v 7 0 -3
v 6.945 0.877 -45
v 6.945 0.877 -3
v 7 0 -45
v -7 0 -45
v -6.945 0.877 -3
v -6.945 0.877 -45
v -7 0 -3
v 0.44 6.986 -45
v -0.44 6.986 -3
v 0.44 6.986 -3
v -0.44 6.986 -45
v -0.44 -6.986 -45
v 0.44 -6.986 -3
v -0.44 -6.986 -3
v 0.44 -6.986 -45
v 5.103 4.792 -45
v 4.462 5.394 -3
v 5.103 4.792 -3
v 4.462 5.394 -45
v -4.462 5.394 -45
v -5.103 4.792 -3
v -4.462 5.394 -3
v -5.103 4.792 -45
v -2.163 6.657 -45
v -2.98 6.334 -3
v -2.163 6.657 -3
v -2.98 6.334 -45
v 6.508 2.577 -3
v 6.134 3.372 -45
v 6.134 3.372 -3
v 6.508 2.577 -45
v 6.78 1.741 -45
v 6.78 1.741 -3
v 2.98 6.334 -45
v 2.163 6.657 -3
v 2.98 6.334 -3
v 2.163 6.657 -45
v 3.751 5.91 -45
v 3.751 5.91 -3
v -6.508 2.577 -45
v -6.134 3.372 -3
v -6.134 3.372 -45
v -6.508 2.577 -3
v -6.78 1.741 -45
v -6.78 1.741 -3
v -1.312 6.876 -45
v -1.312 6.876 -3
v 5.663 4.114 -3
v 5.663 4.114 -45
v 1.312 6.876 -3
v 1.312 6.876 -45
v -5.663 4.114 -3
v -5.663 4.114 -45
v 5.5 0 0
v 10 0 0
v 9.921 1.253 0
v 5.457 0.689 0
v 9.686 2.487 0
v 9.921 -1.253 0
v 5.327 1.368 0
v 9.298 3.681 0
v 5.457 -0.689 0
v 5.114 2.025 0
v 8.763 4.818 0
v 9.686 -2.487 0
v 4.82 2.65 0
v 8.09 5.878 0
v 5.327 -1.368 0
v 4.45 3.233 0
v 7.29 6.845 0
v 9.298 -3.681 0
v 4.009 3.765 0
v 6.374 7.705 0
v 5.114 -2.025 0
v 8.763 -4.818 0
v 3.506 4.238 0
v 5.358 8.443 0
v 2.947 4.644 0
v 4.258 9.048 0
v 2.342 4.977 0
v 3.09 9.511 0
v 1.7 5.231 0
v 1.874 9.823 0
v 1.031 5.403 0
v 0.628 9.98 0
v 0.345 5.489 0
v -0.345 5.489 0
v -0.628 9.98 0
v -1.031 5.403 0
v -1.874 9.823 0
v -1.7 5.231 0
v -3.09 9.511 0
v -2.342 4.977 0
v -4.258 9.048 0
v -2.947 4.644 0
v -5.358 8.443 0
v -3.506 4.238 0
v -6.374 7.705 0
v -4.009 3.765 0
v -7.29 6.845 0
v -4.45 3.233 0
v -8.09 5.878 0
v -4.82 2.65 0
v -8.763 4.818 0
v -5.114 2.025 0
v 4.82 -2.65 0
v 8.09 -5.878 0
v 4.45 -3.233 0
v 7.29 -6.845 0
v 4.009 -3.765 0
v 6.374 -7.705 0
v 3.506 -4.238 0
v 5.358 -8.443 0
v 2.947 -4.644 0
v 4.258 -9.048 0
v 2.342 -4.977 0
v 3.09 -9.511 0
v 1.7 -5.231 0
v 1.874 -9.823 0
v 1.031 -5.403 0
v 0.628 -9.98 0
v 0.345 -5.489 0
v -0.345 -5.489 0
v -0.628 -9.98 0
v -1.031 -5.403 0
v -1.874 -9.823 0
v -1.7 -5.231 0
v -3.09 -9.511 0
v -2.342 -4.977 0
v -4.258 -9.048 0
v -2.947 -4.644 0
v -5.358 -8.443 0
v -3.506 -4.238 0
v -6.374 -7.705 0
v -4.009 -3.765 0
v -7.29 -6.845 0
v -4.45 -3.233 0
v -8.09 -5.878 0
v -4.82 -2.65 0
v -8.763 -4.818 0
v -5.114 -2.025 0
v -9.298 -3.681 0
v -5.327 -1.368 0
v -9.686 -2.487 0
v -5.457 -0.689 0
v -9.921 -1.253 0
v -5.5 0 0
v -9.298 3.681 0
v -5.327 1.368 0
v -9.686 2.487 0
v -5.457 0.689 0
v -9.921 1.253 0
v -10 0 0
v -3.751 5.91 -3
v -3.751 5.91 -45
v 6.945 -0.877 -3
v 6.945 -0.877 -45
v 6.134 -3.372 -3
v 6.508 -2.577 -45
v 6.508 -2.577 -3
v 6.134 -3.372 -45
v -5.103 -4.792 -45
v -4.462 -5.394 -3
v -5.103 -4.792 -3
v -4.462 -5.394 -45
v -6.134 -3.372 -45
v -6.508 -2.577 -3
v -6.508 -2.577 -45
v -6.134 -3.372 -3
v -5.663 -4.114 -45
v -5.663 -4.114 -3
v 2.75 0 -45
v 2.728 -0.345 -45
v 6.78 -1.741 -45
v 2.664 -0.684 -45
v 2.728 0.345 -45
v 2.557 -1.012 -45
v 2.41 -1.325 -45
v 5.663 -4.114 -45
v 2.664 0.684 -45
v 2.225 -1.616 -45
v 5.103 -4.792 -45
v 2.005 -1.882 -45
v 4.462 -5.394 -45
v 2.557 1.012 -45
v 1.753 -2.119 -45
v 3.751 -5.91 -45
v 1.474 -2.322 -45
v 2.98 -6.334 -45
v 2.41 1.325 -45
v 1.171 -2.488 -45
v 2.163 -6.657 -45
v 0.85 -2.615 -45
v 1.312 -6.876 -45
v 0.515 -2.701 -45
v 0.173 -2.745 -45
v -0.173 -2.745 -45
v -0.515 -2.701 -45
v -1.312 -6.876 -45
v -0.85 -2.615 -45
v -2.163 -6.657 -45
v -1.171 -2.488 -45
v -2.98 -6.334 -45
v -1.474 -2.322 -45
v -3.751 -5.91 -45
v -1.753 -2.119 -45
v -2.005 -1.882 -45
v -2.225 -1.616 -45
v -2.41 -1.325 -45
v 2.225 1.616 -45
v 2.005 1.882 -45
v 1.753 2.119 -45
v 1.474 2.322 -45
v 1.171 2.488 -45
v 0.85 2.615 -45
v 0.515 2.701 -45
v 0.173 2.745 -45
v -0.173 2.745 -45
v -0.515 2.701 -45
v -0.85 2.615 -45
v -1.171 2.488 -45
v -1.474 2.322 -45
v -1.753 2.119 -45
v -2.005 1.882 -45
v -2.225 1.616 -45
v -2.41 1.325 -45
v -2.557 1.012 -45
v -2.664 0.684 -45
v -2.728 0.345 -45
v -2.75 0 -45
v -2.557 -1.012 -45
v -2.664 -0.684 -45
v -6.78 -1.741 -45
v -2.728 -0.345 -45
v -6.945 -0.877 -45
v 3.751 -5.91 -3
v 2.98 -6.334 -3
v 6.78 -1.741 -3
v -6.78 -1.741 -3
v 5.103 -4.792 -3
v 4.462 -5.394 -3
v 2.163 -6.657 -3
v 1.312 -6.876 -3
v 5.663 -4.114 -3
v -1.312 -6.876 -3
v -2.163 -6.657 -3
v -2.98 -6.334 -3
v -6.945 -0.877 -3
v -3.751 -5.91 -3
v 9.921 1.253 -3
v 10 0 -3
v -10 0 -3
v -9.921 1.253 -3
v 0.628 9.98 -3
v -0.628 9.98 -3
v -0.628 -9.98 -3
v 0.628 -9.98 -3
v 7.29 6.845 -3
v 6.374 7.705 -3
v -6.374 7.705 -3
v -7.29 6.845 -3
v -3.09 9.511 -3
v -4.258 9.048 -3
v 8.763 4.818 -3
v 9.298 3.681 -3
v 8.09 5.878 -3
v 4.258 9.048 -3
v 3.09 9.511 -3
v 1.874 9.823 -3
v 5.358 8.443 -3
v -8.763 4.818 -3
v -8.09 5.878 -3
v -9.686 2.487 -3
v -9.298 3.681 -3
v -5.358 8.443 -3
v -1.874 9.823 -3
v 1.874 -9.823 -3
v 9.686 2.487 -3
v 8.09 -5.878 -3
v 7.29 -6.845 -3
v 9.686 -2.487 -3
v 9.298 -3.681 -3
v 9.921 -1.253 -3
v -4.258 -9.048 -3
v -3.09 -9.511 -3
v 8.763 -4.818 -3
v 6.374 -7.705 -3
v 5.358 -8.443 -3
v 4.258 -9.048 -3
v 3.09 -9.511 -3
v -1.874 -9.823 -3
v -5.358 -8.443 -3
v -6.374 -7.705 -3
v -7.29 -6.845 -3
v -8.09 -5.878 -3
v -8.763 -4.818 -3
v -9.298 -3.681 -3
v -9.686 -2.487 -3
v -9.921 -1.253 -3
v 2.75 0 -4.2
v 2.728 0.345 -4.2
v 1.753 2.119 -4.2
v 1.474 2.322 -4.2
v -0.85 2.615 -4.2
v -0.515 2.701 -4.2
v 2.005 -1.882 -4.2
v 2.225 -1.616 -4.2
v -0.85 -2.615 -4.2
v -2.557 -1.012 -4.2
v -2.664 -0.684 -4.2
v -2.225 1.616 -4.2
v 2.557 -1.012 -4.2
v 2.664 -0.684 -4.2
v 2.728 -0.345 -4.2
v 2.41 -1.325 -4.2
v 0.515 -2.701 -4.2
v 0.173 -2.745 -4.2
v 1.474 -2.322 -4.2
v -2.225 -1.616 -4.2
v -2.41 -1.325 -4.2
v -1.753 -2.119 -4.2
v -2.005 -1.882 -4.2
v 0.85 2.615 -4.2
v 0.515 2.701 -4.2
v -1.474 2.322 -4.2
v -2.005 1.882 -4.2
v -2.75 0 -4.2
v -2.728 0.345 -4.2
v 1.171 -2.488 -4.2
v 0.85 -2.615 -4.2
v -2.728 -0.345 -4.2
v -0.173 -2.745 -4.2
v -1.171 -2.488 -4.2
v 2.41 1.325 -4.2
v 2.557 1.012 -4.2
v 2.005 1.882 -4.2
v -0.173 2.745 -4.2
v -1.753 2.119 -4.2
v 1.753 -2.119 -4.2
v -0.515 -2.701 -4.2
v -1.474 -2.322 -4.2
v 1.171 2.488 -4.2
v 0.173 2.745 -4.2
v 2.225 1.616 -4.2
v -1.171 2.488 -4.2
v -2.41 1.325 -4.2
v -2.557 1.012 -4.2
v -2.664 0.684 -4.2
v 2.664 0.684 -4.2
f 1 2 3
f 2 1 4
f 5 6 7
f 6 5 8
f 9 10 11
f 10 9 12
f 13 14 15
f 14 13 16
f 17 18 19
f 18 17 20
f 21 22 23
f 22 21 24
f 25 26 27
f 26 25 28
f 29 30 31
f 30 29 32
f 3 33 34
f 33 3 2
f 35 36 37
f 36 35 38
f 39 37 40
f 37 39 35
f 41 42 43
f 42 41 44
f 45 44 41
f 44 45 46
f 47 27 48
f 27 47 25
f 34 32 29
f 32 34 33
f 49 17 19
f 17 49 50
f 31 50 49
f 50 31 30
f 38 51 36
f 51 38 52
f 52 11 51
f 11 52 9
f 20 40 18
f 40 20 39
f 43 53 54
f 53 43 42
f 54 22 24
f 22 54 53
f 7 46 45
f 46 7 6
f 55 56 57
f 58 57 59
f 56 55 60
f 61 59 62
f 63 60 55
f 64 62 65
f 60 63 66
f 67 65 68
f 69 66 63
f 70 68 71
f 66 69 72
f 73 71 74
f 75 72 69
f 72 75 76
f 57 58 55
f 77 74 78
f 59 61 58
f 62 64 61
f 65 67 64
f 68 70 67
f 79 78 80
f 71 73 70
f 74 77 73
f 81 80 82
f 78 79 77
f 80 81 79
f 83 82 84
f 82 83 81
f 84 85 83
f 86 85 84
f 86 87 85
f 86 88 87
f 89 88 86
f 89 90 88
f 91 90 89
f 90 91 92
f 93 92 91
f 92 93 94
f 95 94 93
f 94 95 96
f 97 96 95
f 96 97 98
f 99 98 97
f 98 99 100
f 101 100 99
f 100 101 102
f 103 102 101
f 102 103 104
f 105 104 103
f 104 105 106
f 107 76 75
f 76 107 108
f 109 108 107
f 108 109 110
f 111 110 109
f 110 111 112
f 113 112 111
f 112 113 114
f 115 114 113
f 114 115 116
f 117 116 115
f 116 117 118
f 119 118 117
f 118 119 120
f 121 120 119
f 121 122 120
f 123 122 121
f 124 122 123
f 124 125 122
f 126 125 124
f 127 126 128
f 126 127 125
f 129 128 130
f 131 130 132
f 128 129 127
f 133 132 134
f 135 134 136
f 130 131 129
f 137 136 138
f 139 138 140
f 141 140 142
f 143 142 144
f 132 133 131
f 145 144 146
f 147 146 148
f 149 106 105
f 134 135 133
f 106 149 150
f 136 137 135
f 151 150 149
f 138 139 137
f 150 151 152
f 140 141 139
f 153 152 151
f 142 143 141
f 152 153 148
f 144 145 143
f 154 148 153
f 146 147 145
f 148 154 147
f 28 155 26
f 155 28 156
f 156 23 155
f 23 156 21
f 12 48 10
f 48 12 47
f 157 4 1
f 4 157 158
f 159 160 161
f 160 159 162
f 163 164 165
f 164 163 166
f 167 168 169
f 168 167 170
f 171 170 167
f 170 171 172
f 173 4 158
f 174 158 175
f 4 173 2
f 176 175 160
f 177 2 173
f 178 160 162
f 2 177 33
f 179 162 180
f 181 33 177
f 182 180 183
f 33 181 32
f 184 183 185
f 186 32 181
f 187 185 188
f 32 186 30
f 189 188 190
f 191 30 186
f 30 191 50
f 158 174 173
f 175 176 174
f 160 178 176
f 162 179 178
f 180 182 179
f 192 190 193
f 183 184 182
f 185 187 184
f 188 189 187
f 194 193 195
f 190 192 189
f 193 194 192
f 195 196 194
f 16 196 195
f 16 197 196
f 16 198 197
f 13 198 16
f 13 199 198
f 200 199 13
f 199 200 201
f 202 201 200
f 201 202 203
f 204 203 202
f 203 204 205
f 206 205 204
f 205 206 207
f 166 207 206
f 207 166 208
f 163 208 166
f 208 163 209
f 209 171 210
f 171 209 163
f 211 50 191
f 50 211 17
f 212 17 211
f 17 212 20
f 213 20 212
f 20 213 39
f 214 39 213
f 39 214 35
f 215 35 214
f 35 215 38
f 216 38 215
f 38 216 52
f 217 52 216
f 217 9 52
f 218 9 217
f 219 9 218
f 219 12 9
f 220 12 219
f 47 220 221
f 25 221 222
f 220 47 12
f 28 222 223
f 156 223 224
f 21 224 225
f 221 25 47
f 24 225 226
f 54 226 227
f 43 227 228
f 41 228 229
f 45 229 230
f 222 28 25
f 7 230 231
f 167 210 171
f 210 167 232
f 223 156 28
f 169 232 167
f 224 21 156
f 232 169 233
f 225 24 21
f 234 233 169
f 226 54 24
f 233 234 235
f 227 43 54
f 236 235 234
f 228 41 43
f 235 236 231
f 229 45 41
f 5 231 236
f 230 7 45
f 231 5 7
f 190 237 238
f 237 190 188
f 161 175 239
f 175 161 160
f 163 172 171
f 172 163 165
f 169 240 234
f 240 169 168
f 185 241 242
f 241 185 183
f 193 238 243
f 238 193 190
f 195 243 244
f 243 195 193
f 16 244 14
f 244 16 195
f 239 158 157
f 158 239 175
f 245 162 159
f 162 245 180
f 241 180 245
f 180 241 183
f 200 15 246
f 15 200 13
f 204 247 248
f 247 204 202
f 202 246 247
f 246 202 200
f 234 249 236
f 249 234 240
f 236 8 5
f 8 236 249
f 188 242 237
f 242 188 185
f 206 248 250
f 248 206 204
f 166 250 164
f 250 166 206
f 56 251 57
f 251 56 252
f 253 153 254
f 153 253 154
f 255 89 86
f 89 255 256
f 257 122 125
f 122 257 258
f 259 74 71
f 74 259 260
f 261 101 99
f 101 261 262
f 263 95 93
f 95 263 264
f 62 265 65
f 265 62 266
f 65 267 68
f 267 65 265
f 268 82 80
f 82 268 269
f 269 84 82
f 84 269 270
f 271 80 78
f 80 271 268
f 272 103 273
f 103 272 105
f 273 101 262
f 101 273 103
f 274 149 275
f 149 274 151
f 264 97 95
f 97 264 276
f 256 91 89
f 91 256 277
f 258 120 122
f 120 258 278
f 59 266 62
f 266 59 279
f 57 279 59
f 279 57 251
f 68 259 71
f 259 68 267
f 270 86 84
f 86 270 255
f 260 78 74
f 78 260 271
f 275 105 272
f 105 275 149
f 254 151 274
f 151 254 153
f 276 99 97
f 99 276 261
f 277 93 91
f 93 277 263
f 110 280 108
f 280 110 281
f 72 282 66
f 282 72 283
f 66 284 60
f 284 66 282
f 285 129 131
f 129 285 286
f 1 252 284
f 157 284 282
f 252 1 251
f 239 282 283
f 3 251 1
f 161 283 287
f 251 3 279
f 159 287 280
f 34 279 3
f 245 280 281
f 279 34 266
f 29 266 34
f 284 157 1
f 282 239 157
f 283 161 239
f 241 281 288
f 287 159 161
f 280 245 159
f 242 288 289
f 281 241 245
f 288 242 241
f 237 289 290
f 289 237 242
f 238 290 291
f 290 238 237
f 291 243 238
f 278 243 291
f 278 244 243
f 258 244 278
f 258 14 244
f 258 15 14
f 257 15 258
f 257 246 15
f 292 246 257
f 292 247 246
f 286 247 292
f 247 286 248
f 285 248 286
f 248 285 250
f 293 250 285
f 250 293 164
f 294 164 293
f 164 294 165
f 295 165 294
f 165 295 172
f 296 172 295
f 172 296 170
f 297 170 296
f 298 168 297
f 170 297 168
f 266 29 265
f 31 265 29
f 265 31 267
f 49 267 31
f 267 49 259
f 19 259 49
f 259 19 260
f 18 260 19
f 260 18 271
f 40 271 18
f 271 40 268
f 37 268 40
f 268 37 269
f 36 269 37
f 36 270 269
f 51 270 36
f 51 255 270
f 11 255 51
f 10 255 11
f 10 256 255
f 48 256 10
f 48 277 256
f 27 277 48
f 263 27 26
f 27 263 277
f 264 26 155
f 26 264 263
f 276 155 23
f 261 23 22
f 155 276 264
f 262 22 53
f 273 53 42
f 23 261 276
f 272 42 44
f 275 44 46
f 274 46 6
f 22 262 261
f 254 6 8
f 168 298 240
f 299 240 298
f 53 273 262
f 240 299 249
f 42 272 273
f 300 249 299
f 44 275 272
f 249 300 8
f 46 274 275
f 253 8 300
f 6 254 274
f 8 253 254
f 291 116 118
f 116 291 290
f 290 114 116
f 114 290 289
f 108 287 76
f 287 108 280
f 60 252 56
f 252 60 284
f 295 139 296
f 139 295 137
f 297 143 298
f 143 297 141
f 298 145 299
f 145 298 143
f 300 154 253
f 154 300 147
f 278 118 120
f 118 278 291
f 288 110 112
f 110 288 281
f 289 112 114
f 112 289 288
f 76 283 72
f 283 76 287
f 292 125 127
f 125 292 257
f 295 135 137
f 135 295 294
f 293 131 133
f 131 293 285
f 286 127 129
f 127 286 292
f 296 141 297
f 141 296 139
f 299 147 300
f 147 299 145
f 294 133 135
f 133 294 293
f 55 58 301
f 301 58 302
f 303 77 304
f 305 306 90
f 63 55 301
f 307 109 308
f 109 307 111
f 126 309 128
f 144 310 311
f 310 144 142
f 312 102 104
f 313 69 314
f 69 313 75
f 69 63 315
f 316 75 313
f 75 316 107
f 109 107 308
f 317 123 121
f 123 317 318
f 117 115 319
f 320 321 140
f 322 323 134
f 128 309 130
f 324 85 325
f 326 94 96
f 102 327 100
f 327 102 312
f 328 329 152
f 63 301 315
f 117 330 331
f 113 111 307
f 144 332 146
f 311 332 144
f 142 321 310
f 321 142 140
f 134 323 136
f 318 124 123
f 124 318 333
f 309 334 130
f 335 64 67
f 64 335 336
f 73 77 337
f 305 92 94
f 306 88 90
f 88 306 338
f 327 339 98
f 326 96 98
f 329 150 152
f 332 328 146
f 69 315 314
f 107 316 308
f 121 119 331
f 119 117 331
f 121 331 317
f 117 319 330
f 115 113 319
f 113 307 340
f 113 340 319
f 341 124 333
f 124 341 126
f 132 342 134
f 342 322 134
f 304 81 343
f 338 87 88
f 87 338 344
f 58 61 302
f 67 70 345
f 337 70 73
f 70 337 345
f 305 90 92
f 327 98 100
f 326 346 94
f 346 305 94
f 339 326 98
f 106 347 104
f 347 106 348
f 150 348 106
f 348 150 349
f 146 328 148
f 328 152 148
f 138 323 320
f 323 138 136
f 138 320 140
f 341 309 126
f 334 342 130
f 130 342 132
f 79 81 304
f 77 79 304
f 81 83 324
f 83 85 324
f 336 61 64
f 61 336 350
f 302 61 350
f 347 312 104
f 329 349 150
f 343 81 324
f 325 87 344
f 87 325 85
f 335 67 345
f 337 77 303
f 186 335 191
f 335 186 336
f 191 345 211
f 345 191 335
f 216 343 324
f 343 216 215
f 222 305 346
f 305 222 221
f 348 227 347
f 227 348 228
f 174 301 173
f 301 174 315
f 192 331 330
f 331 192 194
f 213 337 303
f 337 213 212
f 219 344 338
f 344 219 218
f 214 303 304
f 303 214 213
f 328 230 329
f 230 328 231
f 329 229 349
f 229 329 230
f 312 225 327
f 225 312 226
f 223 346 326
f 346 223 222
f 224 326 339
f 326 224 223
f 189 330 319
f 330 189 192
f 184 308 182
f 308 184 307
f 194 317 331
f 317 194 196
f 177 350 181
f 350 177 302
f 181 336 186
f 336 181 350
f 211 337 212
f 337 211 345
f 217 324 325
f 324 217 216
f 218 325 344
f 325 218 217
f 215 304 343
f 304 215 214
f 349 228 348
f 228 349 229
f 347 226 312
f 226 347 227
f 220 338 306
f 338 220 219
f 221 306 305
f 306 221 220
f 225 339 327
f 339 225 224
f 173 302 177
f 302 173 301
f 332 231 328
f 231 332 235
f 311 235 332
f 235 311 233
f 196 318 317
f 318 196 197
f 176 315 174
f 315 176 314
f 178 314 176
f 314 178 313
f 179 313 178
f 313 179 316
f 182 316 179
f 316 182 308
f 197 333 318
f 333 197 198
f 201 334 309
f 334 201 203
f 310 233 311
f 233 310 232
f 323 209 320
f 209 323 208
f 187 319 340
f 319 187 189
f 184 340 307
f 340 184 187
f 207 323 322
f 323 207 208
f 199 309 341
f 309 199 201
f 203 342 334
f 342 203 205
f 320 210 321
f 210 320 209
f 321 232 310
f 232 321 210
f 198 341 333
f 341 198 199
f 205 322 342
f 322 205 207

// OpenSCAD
$fn = 50;


difference() {
	union() {
		translate(v = [0, 0, -45.0000000000]) {
			cylinder(h = 45, r = 7.0000000000);
		}
		translate(v = [0, 0, -3.0000000000]) {
			cylinder(h = 3, r = 10.0000000000);
		}
	}
	union() {
		translate(v = [0, 0, 0]) {
			rotate(a = [0, 0, 0]) {
				difference() {
					union() {
						#translate(v = [0, 0, -45.0000000000]) {
							cylinder(h = 45, r = 2.2500000000);
						}
						#translate(v = [0, 0, -4.2000000000]) {
							cylinder(h = 4.2000000000, r1 = 2.7500000000, r2 = 5.5000000000);
						}
						#translate(v = [0, 0, -45.0000000000]) {
							cylinder(h = 45, r = 2.7500000000);
						}
						#translate(v = [0, 0, -45.0000000000]) {
							cylinder(h = 45, r = 2.2500000000);
						}
					}
					union();
				}
			}
		}
	}
}
